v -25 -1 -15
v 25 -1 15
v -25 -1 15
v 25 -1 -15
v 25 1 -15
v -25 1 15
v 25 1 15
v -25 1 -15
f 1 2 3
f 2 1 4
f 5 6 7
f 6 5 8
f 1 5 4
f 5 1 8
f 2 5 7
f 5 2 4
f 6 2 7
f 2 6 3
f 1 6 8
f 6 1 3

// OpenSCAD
// Parameters for the rectangular plate
plate_length = 50;  // Length of the plate
plate_width = 30;   // Width of the plate
plate_thickness = 2; // Thickness of the plate

// Function to create a rectangular plate
module rectangular_plate() {
    cube([plate_length, plate_width, plate_thickness], center = true);
}

// Generate a single rectangular plate in the correct orientation
translate([0, 0, 0]) rotate([90, 0, 0]) rectangular_plate();
